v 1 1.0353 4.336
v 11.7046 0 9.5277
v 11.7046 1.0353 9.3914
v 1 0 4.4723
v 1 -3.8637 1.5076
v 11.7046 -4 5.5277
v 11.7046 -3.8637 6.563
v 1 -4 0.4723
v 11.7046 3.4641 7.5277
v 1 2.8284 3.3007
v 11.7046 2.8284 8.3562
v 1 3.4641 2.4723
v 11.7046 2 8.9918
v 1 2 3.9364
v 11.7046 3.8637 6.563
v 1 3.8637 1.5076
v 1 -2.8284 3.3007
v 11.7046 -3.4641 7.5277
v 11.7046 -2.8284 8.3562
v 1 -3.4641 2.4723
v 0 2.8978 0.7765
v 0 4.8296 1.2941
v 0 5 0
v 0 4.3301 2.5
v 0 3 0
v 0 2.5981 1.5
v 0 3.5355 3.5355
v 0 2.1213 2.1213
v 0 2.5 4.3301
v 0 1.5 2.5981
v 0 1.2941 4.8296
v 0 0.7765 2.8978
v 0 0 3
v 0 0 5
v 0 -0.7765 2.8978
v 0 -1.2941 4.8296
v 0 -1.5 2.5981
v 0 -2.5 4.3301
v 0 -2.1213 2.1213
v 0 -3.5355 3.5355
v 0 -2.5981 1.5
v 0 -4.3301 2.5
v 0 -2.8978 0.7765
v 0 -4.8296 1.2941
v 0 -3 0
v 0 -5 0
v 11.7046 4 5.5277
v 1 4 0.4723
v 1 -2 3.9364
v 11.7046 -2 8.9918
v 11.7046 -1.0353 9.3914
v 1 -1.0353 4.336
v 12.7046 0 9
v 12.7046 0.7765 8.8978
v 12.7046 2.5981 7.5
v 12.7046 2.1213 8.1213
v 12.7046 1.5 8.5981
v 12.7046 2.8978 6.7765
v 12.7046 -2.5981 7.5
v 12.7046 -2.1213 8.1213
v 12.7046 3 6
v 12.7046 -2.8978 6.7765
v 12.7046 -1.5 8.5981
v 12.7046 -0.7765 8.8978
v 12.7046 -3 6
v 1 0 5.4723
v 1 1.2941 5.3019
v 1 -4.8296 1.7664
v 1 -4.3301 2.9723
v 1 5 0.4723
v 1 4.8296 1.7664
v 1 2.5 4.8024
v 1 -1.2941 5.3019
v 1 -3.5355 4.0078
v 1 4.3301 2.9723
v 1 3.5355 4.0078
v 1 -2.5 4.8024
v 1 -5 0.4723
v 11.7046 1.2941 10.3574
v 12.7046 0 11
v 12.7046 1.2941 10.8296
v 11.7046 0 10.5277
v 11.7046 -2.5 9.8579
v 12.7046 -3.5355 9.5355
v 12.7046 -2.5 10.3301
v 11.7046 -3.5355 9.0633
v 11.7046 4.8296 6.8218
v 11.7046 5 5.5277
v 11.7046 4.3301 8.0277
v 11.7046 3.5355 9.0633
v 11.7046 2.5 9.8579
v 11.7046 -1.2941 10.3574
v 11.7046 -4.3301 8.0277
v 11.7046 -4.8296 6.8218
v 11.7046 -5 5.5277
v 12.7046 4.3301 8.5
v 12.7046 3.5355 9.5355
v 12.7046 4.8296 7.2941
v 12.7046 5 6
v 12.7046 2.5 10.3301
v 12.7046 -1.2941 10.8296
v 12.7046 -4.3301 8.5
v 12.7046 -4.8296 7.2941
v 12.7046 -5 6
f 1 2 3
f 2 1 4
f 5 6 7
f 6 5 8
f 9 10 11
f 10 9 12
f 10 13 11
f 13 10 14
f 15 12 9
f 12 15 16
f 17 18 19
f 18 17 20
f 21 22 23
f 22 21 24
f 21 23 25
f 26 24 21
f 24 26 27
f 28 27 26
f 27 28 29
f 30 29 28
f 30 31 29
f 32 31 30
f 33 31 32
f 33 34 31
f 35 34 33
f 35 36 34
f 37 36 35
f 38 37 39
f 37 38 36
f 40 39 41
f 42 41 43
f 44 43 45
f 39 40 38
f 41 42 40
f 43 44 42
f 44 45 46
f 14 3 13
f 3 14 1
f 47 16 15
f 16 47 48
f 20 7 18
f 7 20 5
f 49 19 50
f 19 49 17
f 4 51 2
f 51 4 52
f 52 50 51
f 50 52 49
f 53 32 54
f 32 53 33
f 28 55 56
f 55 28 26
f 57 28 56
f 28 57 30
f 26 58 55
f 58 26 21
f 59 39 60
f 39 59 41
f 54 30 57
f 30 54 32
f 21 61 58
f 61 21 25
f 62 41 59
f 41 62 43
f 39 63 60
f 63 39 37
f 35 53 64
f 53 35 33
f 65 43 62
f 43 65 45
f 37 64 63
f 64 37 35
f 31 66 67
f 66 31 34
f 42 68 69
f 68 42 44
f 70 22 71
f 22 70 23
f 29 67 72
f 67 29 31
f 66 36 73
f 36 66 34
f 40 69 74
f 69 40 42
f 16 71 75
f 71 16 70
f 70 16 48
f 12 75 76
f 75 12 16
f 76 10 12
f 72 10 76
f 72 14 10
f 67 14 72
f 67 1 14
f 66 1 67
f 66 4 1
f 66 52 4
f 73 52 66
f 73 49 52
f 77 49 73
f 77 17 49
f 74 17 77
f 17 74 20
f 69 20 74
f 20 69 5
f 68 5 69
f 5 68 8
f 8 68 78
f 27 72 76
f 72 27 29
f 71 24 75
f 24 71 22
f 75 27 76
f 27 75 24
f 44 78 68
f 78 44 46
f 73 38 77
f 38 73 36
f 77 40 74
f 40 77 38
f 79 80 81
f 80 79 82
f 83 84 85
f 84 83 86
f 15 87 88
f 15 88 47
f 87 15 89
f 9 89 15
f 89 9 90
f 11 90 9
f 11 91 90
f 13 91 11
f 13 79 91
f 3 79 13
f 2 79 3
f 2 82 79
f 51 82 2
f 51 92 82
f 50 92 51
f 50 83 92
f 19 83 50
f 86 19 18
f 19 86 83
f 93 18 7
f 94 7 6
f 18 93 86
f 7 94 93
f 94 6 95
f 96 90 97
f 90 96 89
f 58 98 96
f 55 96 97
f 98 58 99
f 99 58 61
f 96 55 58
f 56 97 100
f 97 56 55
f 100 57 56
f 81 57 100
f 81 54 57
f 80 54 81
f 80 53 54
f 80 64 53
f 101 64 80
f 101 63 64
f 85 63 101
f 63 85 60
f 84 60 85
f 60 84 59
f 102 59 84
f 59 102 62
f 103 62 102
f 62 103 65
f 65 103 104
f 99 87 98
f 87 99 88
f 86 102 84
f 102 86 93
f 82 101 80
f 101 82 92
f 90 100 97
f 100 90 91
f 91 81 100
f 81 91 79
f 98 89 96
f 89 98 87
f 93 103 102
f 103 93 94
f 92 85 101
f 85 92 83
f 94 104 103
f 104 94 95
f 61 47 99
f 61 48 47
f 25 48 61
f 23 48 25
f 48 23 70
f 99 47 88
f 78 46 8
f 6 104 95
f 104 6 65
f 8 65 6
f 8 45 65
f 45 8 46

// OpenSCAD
// file: ../build_environments.scad
// build_environments.scad: modules to build level sections
//

module pool(diameter=10.0, wall_height=2.0, step_width=3.0, connections=[])
{
    difference() {
        union() {
        difference() {
            cylinder(h=0.5,r1=diameter+step_width,r2=diameter+step_width,$fn=48);
            translate([0,0,-0.1])
                cylinder(h=0.7,r1=diameter,r2=diameter,$fn=48);
        }
        difference() {
            cylinder(h=wall_height,r1=diameter+step_width+1.0,r2=diameter+step_width+1.0,$fn=48);
            translate([0,0,-0.1])
                cylinder(h=wall_height+0.2,r1=diameter+step_width,r2=diameter+step_width,$fn=48);
        }
        }
    
        for (c = connections)
        {
            rotate([0,90,0]) {
                angle = atan2(c[1],c[0]);
                rotate([-angle,0,0]) {
                    cylinder(h=diameter+5.0,r1=c[2],r2=c[2],$fn=48);
                }
            }
        }
    }
}

module straight(length=10.0, width=2.0, dy1=0.0, dy2=0.0, dz=0.0)
{
    dims = [0, 0, 0, 0, 0, (dz/length)];
    matrix = [
        [ 1, dims[0], dims[1], 0 ],
        [ dims[2], 1, dims[4], 0 ],
        [ dims[5], dims[3], 1, 0 ],
        [ 0, 0, 0, 1 ]
    ];
    multmatrix(matrix)
    difference() {
        translate([dy1,0,0])
        union() {
            rotate([0,90,0]) {
                difference() {
                    cylinder(h=(length-dy1-dy2),r1=width+1.0,r2=width+1.0,$fn=24);
                    translate([0,0,-0.1])
                        cylinder(h=(length-dy1-dy2+0.2),r1=width,r2=width,$fn=24);
                }
                difference() {
                    cylinder(h=1.0,r1=width+2.0,r2=width+2.0,$fn=24);
                    translate([0,0,-0.1])
                        cylinder(h=1.2,r1=width,r2=width,$fn=24);
                }
                translate([0,0,(length-dy1-dy2)-1.0]) {
                    difference() {
                        cylinder(h=1.0,r1=width+2.0,r2=width+2.0,$fn=24);
                        translate([0,0,-0.1])
                            cylinder(h=1.2,r1=width,r2=width,$fn=24);
                    }
                }
            }
        }
        translate([0,0,-(2*width+4.0)/2])
            cube([3*length,3*length,2*width+4.0],center=true);
    }
}

module curve(p0=[0,0], center=[0,0], dir=1, angle=0.0, width=2.0)
{
    radius = sqrt((p0[0]-center[0])*(p0[0]-center[0]) + (p0[1]-center[1])*(p0[1]-center[1]));
    if (dir == 0) {
        difference() {
            rotate([0,0,-90])
            difference() {
                rotate_extrude(angle = angle, convexity = 10, $fn=32)
                    translate([radius, 0, 0])
                        circle(r = width+1.0,$fn=24);
                rotate([0,0,-1.0])
                    rotate_extrude(angle = angle+2.0, convexity = 10, $fn=32)
                        translate([radius, 0, 0])
                            circle(r = width,$fn=24);
            }
            translate([0,0,-(2*width+4.0)/2])
                cube([5*radius,5*radius,2*width+4.0],center=true);
        }
    }
    else {
        difference() {
            rotate([0,0,90])
            difference() {
                rotate_extrude(angle = -angle, convexity = 10, $fn=32)
                    translate([radius, 0, 0])
                        circle(r = width+1.0,$fn=24);
                rotate([0,0,1.0])
                    rotate_extrude(angle = -angle-2.0, convexity = 10, $fn=32)
                        translate([radius, 0, 0])
                            circle(r = width,$fn=24);
            }
            translate([0,0,-(2*width+4.0)/2])
                cube([5*radius,5*radius,2*width+4.0],center=true);
        }
    }

}

// test pool
//pool(diameter=12.0000, wall_height=3.0000, step_width=3.0000, connections=[[0.0000,-26.0000,2.0000], [23.6074,0.0000,2.0000]]);

// test straight, slope
//straight(length=26.0000, width=2.0000, dy1=11.8322, dy2=6.7082, dz=0.0000);
//straight(length=29.1549, width=12.0000, dy1=0.0000, dy2=0.0000, dz=-15.0000);

// test curve
//curve(p0=[23.6074, 0.0000], center=[23.6074, 5.0000], dir=0, angle=60.1011, width=2.0000);
//curve(p0=[33.6426, 12.4219], center=[37.9771, 9.9295], dir=1, angle=120.4627, width=2.0000);
// main file
use <../build_environments.scad>;
straight(length=12.7046, width=3.0000, dy1=0.0000, dy2=0.0000, dz=6.0000);
